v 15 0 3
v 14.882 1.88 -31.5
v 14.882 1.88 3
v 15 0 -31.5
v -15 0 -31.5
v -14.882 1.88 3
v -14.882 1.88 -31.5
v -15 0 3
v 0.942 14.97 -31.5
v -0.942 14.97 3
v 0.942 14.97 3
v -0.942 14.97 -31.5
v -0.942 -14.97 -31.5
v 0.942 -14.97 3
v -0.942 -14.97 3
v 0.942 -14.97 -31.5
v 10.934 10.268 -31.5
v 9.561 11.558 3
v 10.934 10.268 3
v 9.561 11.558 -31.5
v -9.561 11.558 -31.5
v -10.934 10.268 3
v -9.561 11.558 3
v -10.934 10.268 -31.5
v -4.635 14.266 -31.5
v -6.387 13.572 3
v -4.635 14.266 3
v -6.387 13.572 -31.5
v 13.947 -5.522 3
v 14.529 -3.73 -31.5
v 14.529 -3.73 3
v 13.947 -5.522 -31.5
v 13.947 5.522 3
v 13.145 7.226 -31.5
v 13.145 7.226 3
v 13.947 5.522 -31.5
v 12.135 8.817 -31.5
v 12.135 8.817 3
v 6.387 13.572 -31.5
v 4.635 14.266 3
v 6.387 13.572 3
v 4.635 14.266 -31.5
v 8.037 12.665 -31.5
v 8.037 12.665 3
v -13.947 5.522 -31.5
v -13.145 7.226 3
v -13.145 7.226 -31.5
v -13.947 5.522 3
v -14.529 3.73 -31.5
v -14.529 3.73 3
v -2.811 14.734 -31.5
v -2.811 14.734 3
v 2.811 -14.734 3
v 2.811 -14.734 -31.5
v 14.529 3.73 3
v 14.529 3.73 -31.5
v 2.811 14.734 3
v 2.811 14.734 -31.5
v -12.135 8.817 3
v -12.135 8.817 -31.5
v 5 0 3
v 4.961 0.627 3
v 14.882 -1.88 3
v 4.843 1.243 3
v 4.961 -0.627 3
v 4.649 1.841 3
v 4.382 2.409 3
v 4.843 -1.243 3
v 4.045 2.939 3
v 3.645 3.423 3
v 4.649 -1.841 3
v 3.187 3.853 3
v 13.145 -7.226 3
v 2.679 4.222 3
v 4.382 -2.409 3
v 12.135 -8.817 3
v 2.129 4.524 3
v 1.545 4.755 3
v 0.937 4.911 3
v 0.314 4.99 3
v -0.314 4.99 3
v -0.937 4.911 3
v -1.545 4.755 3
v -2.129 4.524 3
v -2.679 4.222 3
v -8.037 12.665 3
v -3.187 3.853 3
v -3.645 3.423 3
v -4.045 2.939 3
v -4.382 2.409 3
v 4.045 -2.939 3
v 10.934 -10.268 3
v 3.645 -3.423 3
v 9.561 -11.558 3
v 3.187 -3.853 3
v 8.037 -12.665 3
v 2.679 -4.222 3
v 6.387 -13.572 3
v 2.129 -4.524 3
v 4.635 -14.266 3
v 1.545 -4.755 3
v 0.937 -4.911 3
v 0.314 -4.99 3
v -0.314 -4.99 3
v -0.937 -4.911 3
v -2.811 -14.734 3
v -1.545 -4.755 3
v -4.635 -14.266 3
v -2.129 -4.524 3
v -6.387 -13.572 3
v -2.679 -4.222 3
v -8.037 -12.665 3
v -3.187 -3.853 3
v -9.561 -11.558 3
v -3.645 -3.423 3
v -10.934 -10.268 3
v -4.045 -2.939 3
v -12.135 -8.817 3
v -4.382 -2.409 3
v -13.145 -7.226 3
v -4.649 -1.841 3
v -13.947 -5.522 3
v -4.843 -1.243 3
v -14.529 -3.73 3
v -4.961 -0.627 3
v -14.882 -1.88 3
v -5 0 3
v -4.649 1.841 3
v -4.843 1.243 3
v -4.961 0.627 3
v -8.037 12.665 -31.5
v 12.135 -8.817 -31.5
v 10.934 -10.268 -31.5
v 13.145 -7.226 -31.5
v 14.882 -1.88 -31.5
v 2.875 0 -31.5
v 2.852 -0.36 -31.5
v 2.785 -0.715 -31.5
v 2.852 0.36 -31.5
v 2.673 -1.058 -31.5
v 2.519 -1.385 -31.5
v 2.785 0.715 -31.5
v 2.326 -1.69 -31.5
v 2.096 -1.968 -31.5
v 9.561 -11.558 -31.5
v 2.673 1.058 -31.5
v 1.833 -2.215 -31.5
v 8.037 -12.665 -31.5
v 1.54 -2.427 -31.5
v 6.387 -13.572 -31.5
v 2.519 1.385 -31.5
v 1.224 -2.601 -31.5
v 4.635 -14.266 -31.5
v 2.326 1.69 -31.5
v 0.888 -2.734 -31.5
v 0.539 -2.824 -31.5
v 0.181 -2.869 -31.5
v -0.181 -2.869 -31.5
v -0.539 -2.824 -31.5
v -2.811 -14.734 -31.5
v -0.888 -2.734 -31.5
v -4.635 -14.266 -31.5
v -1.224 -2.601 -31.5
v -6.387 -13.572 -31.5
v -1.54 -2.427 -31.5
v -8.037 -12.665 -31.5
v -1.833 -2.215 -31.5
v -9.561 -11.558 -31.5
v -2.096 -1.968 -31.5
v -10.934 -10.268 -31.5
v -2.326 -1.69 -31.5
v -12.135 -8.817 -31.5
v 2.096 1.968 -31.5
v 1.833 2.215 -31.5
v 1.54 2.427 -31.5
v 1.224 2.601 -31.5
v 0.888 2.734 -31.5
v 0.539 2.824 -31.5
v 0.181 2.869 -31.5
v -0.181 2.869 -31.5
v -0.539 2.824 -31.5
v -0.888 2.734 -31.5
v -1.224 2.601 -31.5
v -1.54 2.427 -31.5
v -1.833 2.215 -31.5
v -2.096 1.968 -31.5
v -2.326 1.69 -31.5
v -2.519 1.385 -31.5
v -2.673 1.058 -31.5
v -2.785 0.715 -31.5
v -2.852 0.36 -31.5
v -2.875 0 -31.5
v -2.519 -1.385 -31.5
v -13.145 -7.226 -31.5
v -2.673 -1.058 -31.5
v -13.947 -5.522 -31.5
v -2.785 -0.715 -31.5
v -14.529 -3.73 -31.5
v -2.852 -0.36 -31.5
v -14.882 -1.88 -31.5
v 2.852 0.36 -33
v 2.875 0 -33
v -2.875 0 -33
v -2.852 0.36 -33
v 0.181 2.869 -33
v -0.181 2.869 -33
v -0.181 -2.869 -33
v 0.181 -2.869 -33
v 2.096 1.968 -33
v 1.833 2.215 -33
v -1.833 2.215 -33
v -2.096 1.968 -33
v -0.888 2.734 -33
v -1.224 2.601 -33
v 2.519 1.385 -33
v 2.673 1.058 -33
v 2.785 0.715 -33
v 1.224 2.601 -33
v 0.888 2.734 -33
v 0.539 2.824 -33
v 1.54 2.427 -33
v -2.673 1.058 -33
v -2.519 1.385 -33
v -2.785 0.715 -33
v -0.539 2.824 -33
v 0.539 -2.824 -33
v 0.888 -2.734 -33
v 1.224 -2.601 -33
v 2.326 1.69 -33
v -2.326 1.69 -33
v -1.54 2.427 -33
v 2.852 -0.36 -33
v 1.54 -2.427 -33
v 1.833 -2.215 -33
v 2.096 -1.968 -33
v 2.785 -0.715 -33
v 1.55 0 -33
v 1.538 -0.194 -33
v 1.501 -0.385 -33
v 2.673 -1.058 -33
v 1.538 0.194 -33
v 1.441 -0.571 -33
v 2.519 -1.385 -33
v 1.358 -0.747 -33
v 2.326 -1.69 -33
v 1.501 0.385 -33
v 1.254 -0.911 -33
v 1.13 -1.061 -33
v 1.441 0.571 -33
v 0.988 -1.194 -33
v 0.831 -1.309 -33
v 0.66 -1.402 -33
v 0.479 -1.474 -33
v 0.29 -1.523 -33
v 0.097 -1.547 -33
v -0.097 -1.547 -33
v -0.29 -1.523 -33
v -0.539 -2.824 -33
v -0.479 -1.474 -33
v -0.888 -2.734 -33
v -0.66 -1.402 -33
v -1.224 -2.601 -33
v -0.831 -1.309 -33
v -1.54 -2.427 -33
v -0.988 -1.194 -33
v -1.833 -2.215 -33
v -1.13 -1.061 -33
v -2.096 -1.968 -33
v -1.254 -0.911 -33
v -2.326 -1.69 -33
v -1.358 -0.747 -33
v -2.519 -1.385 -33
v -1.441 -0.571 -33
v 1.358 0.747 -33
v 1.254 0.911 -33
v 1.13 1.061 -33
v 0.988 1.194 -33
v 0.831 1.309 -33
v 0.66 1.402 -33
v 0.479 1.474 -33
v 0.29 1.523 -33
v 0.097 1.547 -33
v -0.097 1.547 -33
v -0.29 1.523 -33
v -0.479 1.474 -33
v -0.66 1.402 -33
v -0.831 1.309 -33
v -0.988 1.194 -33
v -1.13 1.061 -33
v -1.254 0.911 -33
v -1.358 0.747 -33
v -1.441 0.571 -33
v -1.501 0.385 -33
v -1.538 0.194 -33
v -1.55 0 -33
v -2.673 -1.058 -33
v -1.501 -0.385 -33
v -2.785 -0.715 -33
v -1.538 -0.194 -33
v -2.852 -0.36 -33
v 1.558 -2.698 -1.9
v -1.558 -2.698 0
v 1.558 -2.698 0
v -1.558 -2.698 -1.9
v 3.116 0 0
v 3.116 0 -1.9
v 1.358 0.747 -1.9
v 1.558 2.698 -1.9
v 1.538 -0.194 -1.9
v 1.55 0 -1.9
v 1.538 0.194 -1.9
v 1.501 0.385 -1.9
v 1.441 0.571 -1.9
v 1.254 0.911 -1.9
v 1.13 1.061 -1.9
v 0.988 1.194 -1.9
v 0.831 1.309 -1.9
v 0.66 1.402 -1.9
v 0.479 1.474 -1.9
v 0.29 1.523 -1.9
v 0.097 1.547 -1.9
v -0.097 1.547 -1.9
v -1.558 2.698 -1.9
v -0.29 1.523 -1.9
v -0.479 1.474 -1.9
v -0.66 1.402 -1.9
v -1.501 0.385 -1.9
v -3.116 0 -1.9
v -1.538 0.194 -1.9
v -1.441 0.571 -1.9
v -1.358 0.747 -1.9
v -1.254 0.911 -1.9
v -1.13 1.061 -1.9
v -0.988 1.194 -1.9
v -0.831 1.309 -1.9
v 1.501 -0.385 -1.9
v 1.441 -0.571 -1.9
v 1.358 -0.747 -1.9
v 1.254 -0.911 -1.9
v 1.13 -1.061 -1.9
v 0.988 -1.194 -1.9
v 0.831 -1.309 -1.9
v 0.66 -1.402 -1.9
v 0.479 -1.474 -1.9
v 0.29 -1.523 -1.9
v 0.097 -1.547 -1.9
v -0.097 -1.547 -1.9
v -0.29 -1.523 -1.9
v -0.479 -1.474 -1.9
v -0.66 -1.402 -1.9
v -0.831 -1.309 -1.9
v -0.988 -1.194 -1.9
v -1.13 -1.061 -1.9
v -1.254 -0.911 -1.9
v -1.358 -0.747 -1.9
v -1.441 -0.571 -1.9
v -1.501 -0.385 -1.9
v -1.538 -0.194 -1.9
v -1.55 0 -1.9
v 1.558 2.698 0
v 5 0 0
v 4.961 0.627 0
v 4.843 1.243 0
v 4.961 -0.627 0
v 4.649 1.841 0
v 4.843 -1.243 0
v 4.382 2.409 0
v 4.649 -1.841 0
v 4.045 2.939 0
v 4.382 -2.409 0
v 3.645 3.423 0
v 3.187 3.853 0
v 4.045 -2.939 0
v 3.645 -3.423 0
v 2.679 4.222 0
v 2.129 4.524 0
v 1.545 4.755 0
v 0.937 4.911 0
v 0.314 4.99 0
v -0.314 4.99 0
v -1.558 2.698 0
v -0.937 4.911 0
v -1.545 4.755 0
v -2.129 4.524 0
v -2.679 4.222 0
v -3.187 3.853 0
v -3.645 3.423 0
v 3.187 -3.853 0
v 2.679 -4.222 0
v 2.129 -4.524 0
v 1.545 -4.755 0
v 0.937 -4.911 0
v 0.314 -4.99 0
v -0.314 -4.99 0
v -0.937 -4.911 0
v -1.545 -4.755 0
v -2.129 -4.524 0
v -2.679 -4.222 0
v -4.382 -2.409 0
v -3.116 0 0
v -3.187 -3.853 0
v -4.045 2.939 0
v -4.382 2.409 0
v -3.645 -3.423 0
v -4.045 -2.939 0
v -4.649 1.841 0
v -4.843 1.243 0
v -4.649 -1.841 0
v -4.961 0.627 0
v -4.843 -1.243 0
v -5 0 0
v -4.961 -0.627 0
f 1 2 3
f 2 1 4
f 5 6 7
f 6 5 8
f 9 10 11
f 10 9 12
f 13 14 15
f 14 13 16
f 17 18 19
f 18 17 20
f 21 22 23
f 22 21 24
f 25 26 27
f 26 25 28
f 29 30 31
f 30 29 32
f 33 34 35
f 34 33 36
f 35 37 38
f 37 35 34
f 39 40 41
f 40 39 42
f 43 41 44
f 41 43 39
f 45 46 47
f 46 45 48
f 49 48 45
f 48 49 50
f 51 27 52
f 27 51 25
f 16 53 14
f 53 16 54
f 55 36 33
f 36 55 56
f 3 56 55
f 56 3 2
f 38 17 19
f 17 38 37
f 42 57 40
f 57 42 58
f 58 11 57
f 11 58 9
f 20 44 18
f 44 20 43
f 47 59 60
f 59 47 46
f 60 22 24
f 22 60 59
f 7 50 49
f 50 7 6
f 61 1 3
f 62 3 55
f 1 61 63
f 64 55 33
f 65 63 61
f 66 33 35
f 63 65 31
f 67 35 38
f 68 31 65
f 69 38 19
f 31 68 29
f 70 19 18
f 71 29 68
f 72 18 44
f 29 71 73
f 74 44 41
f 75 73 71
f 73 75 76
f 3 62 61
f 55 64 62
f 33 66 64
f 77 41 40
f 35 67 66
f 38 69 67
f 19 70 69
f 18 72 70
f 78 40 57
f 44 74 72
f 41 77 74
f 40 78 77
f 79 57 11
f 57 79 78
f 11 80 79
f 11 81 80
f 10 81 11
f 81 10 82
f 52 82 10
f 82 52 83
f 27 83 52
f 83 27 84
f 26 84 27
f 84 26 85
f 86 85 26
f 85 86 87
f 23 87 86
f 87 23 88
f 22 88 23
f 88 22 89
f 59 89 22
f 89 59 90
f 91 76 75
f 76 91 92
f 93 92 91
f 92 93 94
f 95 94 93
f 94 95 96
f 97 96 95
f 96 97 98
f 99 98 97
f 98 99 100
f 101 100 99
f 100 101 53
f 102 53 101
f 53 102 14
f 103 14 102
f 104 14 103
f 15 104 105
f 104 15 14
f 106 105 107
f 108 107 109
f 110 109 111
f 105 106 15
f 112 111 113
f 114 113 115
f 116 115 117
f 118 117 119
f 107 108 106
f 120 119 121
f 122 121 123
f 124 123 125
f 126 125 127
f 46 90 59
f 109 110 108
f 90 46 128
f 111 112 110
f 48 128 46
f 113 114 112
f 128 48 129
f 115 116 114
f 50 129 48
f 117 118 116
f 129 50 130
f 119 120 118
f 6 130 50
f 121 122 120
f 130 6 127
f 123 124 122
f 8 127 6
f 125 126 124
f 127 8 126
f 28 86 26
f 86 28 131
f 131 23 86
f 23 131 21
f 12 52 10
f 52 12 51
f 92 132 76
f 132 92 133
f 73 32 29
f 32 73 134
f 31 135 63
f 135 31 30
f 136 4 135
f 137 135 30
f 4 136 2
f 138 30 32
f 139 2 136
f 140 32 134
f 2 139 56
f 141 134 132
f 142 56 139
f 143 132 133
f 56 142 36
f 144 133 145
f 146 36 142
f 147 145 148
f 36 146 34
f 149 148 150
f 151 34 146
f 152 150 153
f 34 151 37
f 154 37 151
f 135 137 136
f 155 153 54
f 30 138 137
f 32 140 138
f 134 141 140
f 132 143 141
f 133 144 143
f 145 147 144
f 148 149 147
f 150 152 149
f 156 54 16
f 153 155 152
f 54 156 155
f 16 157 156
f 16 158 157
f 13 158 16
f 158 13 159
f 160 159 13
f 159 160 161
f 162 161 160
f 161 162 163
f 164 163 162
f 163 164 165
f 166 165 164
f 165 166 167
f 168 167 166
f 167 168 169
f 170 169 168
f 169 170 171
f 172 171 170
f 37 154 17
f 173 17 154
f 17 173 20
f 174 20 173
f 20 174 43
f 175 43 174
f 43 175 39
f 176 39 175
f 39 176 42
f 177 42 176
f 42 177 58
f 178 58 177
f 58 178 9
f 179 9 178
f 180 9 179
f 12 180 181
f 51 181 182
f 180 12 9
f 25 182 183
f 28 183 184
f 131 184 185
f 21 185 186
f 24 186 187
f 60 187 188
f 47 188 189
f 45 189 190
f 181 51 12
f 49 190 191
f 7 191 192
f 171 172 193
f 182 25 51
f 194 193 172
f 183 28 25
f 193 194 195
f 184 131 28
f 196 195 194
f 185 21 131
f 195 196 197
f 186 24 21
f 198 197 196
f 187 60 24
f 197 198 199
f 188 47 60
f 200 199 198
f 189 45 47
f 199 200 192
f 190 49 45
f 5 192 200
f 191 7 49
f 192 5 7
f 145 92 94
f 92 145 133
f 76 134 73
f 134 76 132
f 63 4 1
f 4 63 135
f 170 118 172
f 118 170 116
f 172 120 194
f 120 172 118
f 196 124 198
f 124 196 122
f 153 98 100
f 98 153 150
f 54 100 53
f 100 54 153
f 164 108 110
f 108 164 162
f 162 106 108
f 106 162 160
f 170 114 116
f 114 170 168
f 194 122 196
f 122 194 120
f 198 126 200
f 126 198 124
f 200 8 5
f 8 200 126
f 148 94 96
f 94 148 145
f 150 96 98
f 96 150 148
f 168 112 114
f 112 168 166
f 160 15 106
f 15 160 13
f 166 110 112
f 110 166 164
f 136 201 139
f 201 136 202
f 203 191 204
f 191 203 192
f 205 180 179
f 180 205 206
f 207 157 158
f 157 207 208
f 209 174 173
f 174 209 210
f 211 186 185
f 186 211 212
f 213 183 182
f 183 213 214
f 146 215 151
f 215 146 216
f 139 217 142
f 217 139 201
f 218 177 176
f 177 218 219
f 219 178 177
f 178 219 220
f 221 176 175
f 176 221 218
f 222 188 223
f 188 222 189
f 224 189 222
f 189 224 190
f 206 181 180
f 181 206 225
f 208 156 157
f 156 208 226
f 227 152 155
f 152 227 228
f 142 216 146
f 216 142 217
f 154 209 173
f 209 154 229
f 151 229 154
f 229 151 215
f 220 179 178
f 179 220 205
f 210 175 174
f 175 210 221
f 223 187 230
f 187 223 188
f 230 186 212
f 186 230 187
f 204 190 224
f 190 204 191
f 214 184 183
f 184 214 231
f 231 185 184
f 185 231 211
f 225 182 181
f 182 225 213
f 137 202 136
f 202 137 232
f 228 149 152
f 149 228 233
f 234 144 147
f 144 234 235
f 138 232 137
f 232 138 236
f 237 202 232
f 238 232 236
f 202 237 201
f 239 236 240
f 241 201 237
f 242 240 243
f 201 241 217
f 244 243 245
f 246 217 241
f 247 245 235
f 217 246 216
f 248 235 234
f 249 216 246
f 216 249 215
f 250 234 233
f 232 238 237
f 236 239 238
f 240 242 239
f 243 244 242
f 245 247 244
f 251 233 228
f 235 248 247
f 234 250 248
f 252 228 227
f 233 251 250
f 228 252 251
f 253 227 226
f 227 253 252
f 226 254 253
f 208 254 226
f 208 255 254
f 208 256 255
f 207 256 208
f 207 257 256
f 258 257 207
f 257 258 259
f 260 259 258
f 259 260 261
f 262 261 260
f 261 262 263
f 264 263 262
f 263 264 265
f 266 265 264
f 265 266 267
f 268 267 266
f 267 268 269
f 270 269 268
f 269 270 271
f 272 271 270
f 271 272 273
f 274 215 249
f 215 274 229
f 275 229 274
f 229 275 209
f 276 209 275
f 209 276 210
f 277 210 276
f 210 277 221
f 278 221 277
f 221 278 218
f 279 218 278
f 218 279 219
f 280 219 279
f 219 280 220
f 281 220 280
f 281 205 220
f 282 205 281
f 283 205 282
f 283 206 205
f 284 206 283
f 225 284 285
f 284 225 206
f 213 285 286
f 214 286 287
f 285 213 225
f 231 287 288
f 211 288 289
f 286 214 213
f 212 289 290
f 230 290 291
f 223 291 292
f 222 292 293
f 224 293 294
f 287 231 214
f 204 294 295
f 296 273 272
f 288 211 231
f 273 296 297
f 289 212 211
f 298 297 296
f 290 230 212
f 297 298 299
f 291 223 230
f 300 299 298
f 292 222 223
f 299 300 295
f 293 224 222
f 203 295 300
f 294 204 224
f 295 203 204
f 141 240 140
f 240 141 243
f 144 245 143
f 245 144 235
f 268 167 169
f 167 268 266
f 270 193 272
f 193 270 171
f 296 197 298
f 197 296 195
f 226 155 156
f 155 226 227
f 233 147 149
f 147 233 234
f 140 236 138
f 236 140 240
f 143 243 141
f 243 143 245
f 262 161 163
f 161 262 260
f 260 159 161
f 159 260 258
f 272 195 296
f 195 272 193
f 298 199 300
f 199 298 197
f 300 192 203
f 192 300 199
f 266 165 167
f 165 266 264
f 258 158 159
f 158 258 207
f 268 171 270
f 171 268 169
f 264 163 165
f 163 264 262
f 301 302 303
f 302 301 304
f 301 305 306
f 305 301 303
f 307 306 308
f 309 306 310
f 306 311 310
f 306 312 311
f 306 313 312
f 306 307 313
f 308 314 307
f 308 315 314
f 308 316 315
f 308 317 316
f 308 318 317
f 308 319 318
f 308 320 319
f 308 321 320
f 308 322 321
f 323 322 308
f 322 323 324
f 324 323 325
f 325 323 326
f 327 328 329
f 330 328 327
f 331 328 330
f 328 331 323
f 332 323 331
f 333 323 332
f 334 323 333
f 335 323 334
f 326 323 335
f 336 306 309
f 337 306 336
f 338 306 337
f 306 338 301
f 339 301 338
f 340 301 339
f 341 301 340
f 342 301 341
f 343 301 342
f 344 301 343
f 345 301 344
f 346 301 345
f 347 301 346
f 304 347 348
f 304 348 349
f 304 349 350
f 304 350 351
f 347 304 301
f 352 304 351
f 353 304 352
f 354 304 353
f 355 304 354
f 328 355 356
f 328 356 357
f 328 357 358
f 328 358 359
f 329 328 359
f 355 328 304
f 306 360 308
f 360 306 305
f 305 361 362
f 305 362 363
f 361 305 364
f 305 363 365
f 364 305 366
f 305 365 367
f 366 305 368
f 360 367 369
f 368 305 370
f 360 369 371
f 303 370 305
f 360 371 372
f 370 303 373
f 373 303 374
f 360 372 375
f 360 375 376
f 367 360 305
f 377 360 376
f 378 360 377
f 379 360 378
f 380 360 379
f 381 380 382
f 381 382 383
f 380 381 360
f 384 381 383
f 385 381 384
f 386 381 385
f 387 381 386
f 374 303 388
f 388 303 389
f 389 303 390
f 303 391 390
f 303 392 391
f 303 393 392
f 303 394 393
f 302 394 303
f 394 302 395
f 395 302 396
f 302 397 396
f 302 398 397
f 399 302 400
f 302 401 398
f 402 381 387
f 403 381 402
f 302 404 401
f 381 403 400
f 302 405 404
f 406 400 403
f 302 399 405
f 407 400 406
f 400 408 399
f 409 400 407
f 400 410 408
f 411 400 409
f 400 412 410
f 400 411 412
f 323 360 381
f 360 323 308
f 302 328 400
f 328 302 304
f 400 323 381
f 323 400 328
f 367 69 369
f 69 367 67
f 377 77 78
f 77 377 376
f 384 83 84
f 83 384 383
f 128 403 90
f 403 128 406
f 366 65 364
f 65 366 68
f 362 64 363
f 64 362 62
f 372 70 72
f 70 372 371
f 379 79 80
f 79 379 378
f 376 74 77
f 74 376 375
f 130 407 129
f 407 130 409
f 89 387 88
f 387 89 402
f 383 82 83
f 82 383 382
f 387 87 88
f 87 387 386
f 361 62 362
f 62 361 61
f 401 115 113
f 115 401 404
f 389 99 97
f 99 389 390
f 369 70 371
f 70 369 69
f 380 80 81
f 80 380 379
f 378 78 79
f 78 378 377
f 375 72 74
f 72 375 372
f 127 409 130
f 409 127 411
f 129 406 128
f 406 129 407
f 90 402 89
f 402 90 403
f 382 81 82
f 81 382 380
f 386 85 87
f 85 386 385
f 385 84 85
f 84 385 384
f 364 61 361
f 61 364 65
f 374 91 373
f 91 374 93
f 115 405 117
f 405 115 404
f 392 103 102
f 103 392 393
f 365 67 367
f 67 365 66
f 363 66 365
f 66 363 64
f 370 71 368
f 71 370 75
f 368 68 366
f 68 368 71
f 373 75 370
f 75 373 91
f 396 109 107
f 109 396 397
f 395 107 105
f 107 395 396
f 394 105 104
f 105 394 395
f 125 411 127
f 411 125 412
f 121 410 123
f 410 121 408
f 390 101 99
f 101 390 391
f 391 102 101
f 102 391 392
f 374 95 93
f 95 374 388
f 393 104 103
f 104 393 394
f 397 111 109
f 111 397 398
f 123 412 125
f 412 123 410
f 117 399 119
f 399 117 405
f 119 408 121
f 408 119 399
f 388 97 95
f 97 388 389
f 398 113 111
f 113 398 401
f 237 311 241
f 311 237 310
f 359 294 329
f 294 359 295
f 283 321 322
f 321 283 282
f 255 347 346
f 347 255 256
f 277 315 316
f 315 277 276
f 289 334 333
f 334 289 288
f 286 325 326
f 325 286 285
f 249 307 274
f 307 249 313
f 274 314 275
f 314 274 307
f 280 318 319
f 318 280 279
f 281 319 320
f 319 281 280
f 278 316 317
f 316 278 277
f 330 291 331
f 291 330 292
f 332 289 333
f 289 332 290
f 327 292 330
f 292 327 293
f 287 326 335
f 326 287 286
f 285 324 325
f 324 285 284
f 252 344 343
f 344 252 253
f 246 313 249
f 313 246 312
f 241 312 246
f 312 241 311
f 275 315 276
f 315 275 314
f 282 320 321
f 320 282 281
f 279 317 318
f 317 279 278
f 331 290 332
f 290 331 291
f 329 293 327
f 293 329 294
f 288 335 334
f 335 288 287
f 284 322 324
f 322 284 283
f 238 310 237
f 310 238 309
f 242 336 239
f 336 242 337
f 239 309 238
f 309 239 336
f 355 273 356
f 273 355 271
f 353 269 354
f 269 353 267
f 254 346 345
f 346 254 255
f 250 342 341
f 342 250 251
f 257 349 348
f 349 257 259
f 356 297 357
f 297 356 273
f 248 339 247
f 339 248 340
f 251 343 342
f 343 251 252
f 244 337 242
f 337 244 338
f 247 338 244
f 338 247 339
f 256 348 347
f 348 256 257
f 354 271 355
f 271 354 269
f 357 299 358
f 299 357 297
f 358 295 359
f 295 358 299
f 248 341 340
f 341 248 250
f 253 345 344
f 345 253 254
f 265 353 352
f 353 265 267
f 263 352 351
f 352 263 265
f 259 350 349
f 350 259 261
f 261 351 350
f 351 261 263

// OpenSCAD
$fn = 50;

difference() {
	union() {
		translate(v = [0, 0, -31.5]) {
			cylinder(h = 34.5, r = 15.0);
		}
		#translate(v = [0, 0, -33.0]) {
			cylinder(h = 33, r = 2.875);
		}
	}
	union() {
		translate(v = [0, 0, 0]) {
			rotate(a = [0, 0, 0]) {
				difference() {
					union() {
						translate(v = [0, 0, -1.9]) {
							linear_extrude(height = 1.9) {
								polygon(points = [[3.1158, 0.0], [1.5579000000000005, 2.698361953111554], [-1.5578999999999994, 2.6983619531115544], [-3.1158, 3.815754496783323e-16], [-1.5579000000000014, -2.6983619531115535], [1.557899999999998, -2.6983619531115552]]);
							}
						}
					}
					union();
				}
			}
		}
		#cylinder(h = 3, r = 5.0);
		#translate(v = [0, 0, -100.0]) {
			cylinder(h = 200, r = 1.55);
		}
	}
}
